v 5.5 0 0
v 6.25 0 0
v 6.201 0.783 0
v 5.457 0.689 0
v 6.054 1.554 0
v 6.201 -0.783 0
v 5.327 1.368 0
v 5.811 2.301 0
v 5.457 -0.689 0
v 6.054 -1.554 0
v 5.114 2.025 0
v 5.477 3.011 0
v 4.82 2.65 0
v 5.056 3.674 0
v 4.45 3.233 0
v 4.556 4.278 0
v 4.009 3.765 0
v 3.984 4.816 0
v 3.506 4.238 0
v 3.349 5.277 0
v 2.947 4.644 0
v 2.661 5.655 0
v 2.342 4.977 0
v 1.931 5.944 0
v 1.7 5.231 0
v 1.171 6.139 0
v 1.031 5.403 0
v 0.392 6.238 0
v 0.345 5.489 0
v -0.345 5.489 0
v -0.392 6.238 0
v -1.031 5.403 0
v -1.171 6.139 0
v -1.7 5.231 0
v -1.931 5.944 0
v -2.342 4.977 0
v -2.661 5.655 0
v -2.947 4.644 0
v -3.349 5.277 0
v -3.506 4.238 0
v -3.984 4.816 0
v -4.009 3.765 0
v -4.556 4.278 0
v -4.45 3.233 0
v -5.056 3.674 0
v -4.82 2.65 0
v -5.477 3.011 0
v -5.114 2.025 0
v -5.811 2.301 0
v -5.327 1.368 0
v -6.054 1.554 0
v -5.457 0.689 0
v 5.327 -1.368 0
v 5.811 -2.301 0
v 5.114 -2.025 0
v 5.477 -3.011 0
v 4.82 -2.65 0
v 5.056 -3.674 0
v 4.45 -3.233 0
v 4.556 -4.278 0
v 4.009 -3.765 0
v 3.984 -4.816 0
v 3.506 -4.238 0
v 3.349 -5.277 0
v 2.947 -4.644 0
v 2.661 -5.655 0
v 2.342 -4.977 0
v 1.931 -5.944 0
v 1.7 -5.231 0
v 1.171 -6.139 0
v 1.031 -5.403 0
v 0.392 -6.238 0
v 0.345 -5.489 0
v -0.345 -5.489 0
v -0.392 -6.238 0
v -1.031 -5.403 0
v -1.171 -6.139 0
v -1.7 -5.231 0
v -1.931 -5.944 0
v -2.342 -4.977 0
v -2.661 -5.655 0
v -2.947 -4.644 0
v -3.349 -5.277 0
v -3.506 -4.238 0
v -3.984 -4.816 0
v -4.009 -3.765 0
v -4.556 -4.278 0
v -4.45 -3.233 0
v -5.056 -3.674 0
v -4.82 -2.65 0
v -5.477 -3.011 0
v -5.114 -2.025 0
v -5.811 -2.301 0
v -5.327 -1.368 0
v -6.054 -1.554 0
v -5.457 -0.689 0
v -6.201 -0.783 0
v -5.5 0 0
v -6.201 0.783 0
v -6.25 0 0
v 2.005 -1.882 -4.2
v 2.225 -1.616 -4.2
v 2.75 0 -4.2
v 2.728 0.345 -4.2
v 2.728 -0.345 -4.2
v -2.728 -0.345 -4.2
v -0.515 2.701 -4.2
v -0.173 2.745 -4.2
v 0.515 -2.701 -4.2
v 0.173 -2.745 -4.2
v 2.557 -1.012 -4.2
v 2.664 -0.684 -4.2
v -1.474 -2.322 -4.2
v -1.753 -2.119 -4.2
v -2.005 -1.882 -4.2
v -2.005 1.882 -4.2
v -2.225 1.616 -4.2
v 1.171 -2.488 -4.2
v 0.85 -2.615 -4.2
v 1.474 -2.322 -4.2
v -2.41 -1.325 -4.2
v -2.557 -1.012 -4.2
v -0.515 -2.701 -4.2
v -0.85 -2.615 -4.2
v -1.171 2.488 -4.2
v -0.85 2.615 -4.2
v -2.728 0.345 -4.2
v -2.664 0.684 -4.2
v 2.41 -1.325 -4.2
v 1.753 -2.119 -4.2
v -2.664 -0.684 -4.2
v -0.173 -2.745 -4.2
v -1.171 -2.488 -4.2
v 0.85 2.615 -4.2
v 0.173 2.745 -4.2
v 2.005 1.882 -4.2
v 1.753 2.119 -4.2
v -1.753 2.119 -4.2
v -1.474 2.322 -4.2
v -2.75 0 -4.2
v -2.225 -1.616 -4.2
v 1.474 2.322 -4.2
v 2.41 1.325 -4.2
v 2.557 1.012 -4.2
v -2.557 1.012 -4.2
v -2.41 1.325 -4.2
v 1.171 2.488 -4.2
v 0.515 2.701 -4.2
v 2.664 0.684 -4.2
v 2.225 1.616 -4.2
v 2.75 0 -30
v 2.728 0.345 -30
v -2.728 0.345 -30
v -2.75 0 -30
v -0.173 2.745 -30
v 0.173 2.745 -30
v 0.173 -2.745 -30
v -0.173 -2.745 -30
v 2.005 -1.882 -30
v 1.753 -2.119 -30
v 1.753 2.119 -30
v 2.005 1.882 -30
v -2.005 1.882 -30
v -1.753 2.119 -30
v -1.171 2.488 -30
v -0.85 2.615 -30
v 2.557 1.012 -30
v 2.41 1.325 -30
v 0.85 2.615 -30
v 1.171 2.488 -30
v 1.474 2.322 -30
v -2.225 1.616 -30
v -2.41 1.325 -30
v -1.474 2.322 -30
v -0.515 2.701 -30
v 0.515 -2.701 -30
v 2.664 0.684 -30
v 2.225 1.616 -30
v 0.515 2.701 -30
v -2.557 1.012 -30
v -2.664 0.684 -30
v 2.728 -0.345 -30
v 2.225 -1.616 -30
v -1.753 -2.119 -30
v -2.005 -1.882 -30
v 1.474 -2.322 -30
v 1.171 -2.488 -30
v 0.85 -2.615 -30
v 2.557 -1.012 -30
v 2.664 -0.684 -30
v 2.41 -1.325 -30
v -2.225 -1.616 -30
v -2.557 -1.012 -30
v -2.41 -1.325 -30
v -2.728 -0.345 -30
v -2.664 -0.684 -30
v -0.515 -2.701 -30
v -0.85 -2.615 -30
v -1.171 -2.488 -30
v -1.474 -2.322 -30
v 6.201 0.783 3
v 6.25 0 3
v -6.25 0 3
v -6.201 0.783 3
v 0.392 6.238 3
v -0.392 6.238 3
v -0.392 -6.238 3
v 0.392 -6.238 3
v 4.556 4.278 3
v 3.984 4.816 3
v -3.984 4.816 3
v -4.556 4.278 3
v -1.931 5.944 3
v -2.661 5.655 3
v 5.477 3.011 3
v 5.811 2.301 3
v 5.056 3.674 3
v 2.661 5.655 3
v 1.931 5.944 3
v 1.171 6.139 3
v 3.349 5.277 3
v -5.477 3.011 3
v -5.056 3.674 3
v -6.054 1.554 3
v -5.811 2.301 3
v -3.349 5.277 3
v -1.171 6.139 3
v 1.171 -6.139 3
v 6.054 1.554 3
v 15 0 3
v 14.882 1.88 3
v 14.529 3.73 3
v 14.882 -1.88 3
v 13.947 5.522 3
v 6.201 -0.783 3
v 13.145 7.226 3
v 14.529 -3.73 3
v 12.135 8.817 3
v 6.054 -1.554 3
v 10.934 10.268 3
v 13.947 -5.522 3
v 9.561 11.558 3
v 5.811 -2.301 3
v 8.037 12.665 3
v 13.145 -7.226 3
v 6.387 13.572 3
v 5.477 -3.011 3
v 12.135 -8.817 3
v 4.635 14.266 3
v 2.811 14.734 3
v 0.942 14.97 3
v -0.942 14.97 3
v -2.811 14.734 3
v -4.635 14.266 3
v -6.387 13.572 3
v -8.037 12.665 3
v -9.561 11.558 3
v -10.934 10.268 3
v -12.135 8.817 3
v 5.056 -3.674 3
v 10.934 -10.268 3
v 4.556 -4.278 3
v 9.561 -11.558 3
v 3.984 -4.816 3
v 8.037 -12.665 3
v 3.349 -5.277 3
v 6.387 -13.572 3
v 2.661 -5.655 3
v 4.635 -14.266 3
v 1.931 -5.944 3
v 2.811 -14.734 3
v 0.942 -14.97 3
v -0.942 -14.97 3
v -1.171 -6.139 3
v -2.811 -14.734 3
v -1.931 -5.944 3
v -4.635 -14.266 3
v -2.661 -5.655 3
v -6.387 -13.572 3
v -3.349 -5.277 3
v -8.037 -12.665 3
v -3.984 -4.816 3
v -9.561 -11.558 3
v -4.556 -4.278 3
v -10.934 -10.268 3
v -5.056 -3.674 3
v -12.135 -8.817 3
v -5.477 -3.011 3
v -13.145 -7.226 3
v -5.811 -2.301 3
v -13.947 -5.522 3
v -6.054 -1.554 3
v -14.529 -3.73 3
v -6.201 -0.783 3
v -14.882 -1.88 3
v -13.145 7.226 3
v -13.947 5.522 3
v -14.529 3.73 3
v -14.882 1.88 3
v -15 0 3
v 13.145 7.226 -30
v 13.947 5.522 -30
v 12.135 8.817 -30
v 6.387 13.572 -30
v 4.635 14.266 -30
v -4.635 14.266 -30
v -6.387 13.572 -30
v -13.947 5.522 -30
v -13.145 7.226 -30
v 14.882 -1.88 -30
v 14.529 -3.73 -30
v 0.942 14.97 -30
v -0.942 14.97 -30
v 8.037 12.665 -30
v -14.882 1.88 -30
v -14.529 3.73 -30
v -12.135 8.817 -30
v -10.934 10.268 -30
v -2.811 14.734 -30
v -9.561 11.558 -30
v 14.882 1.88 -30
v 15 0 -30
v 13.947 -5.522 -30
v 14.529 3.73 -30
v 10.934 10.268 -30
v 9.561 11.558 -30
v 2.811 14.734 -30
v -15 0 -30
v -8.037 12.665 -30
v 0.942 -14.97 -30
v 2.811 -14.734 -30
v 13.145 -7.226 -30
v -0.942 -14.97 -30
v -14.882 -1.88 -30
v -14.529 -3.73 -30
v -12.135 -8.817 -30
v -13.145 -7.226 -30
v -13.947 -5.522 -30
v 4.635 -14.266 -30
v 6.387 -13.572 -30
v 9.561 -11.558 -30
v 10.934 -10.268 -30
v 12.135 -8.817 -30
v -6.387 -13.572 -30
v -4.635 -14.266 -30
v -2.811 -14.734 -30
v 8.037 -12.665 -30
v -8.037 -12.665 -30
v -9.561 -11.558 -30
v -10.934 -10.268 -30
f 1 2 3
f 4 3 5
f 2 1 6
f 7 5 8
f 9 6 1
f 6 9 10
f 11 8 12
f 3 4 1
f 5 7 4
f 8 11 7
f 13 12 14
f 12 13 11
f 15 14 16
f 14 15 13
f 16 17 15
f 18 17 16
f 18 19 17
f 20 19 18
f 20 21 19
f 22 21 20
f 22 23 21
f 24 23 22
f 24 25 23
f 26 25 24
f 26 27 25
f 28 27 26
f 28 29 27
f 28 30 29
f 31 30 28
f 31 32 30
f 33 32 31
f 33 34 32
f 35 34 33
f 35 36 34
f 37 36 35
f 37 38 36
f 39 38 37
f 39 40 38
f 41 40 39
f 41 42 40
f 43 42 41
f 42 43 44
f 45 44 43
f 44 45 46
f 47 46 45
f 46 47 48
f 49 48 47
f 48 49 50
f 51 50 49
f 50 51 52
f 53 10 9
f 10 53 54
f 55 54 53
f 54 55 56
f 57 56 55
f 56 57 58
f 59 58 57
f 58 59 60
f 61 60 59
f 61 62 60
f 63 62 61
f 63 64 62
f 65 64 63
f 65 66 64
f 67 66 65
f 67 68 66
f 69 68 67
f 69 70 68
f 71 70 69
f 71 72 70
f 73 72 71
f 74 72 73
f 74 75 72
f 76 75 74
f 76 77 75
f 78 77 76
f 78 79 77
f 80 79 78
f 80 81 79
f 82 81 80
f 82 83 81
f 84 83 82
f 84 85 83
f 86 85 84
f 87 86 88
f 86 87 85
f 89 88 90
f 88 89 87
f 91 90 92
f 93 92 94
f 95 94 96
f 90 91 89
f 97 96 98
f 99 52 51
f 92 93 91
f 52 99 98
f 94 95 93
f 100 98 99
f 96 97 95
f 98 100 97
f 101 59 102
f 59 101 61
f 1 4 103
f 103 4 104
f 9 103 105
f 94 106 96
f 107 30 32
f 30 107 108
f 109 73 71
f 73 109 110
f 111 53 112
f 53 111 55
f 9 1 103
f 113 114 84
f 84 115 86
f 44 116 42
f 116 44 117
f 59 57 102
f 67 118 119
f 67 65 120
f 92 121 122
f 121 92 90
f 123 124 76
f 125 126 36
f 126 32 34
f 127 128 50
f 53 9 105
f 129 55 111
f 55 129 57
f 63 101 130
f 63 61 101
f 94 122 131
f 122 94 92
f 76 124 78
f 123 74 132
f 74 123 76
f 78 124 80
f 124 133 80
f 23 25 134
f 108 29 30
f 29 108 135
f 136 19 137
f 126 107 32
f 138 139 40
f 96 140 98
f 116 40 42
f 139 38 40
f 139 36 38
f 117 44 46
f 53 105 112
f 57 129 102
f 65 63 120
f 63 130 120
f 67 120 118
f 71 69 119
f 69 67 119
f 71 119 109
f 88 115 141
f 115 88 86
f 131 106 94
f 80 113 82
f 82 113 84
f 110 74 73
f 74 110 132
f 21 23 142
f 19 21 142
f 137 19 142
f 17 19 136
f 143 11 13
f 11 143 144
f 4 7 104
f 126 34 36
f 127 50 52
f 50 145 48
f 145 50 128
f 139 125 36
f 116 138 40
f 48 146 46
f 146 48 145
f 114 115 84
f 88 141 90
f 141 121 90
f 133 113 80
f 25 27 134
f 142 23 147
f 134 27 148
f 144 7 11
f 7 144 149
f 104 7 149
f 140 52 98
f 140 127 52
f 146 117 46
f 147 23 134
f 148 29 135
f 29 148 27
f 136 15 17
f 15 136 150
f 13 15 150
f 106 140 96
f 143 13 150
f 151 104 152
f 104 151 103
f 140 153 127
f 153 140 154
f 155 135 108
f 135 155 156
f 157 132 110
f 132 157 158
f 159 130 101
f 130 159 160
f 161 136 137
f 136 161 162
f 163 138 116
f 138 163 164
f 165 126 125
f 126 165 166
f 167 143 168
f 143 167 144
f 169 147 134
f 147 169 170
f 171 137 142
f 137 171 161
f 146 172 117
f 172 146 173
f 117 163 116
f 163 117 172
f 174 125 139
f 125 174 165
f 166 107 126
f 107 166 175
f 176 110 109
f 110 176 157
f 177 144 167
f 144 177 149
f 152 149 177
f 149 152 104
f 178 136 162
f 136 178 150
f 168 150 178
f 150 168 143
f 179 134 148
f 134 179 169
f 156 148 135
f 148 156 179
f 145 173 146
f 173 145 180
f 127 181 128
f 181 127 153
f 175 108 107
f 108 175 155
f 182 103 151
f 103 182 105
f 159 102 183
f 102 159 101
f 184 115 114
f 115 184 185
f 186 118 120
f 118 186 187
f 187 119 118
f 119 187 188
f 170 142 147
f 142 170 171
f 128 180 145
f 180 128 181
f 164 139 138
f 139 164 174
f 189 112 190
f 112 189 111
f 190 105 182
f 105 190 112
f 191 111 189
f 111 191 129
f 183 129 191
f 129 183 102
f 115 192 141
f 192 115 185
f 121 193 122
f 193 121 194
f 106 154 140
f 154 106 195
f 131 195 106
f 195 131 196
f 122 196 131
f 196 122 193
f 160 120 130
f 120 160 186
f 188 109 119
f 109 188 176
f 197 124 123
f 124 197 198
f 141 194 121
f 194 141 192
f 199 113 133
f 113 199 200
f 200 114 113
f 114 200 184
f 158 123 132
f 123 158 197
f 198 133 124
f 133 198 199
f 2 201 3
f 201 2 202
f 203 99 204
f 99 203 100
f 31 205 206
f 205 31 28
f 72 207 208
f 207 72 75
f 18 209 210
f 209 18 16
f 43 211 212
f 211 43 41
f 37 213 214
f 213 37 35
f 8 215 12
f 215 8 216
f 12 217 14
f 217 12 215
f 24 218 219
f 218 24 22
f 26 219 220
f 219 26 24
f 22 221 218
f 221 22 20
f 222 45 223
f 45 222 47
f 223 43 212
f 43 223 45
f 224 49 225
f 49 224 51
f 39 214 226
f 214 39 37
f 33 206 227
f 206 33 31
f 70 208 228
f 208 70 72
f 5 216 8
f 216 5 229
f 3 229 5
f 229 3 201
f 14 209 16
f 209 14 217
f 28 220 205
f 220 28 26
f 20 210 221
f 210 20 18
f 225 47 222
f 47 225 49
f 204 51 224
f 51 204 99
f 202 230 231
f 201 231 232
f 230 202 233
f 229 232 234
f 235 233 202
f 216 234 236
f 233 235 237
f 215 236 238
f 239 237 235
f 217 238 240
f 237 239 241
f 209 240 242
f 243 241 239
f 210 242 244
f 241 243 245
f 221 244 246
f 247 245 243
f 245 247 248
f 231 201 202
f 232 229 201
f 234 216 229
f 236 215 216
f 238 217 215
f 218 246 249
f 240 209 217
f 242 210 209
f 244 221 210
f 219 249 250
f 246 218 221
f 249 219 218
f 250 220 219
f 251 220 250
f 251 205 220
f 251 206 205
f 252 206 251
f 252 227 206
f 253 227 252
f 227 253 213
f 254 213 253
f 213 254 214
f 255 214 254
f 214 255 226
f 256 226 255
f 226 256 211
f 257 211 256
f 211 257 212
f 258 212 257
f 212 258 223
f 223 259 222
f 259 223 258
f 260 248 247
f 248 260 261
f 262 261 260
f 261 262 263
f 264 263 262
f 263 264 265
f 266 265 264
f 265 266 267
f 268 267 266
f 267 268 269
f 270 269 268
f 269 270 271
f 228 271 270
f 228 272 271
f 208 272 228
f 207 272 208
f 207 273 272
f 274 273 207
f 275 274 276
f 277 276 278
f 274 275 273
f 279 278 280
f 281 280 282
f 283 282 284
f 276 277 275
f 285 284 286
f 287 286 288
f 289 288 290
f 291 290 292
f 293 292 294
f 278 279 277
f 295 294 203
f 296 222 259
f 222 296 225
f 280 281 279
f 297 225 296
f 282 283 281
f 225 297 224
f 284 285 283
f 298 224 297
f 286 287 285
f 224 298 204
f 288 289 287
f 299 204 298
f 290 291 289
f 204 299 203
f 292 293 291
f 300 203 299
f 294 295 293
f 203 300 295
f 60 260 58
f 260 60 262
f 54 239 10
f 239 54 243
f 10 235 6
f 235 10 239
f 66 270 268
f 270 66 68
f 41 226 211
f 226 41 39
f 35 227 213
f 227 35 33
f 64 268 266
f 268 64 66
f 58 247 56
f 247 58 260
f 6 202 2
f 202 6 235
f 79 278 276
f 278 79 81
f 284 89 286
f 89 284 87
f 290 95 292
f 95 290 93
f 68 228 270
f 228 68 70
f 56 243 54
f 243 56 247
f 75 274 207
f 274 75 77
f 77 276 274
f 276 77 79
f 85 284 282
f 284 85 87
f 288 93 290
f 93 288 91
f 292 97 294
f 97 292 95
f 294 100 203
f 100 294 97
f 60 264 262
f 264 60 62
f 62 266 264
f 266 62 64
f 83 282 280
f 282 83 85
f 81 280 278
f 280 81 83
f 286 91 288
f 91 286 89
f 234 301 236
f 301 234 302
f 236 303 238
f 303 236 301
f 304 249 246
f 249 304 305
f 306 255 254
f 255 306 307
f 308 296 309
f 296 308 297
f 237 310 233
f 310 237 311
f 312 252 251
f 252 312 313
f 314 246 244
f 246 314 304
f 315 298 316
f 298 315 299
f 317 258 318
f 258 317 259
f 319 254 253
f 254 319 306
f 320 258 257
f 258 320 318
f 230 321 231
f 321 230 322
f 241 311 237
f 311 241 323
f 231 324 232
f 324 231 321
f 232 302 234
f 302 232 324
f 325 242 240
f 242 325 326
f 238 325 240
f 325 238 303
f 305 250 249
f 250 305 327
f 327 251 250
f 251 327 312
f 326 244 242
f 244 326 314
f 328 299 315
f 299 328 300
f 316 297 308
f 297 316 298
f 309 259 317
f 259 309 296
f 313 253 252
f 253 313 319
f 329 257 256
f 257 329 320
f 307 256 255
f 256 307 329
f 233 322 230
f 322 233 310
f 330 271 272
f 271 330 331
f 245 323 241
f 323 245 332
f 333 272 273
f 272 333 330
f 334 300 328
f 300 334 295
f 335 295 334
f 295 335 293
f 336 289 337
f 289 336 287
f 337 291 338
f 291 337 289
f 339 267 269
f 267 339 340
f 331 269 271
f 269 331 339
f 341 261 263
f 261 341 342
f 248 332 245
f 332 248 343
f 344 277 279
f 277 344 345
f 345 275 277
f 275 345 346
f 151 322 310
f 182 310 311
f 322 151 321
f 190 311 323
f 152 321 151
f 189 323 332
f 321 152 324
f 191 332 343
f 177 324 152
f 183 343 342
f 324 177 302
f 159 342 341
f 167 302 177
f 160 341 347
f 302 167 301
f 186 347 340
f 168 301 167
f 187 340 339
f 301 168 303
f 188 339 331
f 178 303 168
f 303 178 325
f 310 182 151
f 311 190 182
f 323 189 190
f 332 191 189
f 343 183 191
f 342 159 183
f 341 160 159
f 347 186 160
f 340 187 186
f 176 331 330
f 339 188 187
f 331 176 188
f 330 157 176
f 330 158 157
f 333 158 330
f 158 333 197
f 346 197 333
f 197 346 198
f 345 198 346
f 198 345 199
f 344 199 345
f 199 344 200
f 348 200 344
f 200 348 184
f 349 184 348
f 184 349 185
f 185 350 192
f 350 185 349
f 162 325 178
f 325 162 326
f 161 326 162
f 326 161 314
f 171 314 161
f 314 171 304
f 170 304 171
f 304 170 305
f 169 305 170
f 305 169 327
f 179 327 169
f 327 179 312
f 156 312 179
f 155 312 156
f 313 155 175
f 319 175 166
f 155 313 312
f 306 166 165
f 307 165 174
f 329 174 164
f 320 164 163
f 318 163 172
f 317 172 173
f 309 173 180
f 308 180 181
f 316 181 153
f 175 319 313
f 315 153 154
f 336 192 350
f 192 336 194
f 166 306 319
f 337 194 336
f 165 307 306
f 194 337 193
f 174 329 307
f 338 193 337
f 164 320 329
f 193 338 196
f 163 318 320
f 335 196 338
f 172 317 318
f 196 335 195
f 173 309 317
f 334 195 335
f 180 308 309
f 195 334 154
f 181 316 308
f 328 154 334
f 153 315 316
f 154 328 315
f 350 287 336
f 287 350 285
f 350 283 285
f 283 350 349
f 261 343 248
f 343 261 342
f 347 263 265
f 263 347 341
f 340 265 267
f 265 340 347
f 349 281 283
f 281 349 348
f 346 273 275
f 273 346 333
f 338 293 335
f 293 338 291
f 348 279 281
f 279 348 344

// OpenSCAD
$fn = 50;


difference() {
	union() {
		translate(v = [0, 0, -30.0000000000]) {
			cylinder(h = 33, r = 15.0000000000);
		}
	}
	union() {
		translate(v = [0, 0, 0]) {
			rotate(a = [0, 0, 0]) {
				difference() {
					union() {
						translate(v = [0, 0, -33.0000000000]) {
							cylinder(h = 33, r = 2.2500000000);
						}
						translate(v = [0, 0, -4.2000000000]) {
							cylinder(h = 4.2000000000, r1 = 2.7500000000, r2 = 5.5000000000);
						}
						translate(v = [0, 0, -33.0000000000]) {
							cylinder(h = 33, r = 2.7500000000);
						}
						translate(v = [0, 0, -33.0000000000]) {
							cylinder(h = 33, r = 2.2500000000);
						}
					}
					union();
				}
			}
		}
		#cylinder(h = 3, r = 6.2500000000);
	}
}
